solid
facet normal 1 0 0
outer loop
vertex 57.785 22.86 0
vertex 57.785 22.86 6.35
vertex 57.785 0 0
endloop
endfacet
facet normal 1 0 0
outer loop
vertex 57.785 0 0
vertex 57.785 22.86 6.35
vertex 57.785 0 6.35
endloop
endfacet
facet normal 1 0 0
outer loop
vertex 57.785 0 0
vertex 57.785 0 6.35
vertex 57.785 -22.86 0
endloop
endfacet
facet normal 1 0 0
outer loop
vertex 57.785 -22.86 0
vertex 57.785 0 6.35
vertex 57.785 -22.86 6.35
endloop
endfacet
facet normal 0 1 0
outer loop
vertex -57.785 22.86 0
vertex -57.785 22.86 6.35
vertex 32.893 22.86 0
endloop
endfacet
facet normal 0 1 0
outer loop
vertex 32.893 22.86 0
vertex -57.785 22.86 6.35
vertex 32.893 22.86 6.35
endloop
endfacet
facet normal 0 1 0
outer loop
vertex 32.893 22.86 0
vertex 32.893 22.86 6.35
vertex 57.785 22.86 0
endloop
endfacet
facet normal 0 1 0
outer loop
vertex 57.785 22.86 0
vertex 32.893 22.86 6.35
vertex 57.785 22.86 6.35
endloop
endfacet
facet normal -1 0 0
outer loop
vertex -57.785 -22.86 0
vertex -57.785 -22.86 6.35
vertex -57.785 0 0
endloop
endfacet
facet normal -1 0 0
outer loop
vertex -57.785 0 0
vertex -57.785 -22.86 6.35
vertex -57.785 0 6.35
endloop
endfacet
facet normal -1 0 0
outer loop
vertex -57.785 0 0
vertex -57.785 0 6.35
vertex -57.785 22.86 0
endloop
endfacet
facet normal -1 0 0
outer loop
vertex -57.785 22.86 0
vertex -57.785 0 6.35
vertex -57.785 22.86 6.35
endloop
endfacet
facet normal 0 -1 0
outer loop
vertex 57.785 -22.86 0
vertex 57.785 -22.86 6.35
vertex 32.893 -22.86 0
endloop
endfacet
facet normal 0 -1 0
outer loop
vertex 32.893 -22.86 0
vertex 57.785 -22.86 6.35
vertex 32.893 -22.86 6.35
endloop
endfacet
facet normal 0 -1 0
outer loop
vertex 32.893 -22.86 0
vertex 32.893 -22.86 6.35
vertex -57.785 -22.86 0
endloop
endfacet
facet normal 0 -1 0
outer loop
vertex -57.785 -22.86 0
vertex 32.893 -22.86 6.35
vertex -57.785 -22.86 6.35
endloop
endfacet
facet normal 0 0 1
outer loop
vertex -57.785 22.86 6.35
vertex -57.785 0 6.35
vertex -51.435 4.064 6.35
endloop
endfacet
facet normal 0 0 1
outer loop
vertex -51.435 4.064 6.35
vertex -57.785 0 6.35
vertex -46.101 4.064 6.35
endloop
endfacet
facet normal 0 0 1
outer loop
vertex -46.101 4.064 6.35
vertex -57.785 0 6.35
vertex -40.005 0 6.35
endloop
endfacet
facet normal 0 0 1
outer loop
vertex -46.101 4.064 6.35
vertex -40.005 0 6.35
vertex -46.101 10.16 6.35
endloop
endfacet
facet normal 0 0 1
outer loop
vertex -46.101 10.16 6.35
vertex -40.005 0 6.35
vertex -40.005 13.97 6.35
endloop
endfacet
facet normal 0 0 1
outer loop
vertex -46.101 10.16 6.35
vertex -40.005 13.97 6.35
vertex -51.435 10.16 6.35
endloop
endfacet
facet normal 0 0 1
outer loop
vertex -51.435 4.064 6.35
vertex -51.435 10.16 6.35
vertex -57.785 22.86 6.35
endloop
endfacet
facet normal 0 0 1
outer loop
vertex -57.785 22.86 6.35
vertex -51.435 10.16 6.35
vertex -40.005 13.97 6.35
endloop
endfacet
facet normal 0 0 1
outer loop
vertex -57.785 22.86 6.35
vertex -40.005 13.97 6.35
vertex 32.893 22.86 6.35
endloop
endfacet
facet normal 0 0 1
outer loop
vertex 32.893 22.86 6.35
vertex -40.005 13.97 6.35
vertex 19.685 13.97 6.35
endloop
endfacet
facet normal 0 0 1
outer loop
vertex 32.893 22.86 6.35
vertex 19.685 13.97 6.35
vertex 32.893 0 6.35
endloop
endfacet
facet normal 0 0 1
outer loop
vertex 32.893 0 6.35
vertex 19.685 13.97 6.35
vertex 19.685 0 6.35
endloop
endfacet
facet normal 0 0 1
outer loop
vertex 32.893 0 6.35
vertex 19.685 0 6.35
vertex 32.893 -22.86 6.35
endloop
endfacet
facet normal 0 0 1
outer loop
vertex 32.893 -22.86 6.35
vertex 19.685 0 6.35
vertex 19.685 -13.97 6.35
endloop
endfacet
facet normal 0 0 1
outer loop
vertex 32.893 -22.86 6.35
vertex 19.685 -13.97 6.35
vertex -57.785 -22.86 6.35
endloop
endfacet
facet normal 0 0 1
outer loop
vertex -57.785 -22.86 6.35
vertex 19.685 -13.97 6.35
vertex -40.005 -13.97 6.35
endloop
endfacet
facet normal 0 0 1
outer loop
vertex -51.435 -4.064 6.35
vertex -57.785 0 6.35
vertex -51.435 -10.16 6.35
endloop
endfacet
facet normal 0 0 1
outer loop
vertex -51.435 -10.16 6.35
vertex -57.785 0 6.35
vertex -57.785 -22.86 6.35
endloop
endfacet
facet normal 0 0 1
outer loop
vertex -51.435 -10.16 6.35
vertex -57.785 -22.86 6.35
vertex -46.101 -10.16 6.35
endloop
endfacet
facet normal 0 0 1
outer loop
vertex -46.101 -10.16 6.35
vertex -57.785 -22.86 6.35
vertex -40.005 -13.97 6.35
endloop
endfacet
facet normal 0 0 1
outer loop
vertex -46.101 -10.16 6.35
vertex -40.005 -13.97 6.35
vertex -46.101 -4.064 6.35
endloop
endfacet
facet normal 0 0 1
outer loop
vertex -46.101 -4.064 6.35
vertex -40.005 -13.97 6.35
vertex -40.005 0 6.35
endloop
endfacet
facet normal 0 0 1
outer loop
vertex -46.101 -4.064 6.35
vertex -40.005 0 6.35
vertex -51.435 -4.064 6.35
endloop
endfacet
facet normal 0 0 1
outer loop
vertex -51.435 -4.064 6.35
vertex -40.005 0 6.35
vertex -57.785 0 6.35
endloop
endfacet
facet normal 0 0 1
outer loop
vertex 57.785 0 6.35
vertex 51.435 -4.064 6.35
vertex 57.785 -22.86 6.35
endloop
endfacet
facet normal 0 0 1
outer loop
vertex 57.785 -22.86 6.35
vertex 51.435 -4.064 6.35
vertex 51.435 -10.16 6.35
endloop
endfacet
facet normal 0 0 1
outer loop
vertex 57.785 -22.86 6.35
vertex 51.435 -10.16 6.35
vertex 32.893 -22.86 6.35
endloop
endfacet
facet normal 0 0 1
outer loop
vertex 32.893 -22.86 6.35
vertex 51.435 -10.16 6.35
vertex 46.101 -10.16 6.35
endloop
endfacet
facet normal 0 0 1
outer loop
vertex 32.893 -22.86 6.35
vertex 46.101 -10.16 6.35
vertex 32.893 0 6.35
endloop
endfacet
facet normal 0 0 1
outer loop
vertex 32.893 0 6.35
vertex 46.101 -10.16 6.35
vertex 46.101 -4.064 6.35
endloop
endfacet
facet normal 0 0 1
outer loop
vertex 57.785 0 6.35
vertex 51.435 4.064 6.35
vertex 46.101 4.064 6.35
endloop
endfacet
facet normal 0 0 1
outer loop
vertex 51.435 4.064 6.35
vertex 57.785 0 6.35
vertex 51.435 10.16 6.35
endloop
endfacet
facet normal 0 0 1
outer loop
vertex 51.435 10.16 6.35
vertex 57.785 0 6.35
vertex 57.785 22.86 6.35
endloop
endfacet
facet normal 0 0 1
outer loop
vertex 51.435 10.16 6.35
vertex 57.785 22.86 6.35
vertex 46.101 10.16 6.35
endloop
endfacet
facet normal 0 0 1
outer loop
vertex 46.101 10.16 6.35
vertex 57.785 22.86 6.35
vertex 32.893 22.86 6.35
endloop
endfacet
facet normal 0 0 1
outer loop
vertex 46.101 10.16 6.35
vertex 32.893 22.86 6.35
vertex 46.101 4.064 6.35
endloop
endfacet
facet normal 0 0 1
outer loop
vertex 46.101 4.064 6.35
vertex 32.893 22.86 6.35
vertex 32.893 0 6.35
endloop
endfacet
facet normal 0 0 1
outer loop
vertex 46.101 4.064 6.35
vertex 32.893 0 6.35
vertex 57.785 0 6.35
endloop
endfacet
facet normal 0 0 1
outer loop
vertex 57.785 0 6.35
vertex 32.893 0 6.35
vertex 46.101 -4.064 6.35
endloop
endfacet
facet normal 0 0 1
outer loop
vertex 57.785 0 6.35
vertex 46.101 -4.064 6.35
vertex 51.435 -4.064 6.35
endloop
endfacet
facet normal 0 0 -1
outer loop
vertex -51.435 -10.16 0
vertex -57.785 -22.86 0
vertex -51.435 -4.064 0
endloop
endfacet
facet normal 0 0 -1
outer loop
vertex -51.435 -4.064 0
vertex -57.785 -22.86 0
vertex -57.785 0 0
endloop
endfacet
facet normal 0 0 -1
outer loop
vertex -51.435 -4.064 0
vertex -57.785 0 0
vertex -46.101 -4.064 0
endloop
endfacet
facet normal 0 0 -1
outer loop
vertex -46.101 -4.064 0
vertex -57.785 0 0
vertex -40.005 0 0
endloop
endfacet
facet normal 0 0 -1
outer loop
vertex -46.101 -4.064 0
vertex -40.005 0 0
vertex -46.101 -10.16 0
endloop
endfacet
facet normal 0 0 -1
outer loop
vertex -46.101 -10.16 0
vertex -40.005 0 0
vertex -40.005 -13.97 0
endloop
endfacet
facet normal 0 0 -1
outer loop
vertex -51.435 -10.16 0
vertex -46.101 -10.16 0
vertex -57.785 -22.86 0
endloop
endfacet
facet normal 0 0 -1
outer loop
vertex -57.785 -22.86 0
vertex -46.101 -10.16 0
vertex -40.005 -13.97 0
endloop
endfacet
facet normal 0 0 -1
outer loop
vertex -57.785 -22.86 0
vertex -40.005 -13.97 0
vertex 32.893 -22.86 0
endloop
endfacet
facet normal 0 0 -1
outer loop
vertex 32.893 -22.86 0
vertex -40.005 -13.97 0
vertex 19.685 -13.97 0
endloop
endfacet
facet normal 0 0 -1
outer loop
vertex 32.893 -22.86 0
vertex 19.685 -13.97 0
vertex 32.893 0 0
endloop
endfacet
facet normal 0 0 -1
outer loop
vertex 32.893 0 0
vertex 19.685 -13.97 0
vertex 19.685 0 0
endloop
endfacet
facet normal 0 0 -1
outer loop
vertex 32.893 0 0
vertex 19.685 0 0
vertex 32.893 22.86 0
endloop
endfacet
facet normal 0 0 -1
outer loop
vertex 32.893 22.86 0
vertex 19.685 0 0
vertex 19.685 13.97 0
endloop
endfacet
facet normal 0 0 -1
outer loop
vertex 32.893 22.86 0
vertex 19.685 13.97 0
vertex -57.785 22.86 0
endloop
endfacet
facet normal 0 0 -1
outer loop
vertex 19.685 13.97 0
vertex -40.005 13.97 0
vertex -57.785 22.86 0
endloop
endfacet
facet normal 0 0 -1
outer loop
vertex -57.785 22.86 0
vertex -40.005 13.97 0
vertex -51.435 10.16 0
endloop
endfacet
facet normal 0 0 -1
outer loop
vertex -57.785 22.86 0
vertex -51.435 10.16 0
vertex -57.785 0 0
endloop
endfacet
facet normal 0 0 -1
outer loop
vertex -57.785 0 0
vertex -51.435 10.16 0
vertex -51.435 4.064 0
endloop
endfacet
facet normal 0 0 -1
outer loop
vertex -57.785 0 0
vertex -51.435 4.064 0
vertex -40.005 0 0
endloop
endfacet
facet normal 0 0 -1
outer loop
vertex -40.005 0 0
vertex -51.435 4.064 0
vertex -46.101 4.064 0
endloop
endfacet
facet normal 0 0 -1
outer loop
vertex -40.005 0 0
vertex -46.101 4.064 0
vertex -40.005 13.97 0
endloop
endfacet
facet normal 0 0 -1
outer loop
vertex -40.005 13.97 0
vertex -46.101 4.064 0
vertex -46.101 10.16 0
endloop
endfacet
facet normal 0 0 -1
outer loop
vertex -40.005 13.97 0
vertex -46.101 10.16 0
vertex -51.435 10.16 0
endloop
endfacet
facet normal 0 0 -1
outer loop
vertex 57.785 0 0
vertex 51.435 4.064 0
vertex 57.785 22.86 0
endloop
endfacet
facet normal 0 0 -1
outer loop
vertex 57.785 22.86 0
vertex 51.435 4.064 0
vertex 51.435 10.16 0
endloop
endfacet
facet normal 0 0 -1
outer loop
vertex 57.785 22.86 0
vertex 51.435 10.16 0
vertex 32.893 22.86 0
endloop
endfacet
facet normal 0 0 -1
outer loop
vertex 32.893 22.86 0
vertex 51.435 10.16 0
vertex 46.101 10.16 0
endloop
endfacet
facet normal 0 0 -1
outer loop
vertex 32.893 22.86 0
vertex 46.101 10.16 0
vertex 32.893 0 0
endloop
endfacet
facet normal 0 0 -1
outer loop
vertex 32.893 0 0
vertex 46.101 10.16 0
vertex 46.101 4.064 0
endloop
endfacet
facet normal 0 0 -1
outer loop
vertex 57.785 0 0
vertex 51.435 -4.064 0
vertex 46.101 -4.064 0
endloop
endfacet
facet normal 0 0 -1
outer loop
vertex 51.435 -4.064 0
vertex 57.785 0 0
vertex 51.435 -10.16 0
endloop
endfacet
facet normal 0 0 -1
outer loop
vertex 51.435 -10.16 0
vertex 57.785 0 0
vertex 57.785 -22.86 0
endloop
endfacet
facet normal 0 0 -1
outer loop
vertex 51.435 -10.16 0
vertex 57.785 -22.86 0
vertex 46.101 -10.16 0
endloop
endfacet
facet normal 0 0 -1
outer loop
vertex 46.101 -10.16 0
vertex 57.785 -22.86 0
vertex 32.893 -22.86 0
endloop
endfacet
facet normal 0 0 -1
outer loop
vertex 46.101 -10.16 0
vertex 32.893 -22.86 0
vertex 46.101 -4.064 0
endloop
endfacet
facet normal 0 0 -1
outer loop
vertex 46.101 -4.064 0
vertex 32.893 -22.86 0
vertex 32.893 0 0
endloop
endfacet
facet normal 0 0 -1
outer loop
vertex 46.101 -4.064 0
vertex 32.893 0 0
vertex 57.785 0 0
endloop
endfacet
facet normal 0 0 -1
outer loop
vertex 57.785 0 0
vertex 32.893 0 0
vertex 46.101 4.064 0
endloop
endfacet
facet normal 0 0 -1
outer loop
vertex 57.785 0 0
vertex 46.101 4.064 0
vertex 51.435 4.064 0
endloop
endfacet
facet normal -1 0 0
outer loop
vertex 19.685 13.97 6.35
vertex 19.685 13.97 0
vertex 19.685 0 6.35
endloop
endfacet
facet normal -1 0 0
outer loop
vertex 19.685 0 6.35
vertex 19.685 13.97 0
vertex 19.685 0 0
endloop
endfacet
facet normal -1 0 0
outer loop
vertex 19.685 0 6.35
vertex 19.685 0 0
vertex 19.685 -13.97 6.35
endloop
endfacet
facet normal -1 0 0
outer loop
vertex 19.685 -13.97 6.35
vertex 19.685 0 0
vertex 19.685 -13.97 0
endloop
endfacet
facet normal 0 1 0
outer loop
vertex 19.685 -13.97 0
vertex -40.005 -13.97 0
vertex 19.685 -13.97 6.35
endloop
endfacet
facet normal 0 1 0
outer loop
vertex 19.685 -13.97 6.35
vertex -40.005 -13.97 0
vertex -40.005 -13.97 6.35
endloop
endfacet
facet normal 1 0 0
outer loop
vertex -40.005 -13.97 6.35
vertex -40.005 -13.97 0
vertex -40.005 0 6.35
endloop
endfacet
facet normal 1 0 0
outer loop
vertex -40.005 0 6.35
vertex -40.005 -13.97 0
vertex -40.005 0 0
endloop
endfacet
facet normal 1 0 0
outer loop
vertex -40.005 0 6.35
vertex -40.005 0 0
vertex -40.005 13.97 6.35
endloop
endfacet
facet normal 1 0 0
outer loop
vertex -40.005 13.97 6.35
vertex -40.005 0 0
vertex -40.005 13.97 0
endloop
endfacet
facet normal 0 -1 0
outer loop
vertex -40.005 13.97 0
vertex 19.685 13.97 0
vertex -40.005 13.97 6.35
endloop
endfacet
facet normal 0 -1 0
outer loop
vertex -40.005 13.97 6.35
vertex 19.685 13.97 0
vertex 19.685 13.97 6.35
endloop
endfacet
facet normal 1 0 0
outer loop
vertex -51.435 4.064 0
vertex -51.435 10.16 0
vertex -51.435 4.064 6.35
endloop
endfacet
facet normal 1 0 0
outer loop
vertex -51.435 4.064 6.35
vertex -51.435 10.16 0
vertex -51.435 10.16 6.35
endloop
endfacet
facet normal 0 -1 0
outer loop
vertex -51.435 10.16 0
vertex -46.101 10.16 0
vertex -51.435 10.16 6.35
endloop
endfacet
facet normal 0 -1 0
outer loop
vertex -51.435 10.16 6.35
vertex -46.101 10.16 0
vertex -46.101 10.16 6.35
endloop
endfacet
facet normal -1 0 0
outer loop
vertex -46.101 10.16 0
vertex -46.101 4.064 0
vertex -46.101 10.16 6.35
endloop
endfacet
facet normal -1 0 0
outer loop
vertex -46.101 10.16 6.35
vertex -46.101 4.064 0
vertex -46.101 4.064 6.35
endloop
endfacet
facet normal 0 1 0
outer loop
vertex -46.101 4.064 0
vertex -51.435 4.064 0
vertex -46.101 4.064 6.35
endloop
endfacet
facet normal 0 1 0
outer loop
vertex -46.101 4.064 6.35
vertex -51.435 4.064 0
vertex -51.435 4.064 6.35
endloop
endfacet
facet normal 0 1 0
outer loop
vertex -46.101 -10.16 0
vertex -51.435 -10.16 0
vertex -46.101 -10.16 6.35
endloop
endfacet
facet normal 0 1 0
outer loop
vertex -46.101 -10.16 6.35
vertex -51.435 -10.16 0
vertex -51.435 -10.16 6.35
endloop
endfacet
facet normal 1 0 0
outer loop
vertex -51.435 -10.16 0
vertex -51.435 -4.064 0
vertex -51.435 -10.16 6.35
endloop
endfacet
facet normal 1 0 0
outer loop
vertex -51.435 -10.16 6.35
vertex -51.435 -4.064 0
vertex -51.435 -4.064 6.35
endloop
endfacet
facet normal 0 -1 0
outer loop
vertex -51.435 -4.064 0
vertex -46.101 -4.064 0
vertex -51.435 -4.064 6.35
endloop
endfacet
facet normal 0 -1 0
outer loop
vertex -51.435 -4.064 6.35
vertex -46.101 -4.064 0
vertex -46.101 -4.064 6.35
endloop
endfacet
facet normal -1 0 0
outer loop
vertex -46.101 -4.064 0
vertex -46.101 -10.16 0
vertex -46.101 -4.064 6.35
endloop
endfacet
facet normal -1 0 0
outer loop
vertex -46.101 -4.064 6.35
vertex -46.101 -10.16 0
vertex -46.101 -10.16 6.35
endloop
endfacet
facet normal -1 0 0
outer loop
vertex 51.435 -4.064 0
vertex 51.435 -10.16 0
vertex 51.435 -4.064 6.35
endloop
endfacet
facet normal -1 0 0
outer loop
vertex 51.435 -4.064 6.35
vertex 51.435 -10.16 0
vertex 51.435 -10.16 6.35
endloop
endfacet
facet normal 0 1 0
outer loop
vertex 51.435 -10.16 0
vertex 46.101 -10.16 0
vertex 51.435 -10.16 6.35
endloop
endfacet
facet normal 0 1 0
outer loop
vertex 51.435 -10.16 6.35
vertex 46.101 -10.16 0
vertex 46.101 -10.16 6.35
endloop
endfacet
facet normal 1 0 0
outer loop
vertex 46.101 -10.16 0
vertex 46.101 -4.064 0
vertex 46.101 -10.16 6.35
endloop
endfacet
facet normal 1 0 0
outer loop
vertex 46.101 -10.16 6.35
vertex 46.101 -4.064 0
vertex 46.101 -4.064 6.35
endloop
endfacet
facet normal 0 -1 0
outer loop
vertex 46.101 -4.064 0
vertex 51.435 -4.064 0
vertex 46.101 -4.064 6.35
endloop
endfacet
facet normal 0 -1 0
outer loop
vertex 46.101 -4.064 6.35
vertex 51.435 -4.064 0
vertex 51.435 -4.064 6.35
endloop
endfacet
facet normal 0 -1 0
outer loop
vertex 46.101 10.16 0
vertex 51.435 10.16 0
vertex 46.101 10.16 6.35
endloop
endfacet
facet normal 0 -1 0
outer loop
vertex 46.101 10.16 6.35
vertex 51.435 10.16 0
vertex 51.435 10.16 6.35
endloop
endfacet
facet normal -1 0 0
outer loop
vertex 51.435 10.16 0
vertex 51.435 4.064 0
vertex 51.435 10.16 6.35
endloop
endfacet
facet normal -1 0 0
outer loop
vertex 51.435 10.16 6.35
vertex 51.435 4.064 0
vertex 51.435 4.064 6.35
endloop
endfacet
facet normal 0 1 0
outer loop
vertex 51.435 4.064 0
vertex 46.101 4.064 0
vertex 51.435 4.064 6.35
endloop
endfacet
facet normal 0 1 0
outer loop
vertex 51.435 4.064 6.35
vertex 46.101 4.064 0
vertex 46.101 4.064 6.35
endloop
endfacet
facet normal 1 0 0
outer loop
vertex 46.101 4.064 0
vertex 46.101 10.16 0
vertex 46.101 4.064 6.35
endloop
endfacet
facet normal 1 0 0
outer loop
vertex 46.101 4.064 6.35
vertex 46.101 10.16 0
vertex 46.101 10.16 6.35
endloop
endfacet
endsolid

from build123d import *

# Parameters (mm, degrees)
SKETCH1_W           = 115.57
SKETCH1_H           = 45.72
BOSS_EXTRUDE1_DEPTH = 6.35
SKETCH2_W           = 59.69
SKETCH2_H           = 27.94
CUT_EXTRUDE1_DEPTH  = 7.35
SKETCH3_W           = 5.334
SKETCH3_H           = 6.096
CUT_EXTRUDE2_DEPTH  = 7.35


with BuildPart() as part:
    # Sketch1 → Boss-Extrude1 (new body)
    with BuildSketch(Plane.XY):
        Rectangle(SKETCH1_W, SKETCH1_H)
    extrude(amount=BOSS_EXTRUDE1_DEPTH)

    # Sketch2 → Cut-Extrude1 (cut, through all)
    with BuildSketch(Plane.XY.offset(6.35)):
        with Locations((-10.16, 0)):
            Rectangle(SKETCH2_W, SKETCH2_H)
    extrude(amount=-CUT_EXTRUDE1_DEPTH, mode=Mode.SUBTRACT)

    # Sketch3 → Cut-Extrude2 (cut, through all)
    with BuildSketch(Plane.XY.offset(6.35)):
        with Locations((-48.768, 7.112)):
            Rectangle(SKETCH3_W, SKETCH3_H)
        with Locations((-48.768, -7.112)):
            Rectangle(SKETCH3_W, SKETCH3_H)
        with Locations((48.768, -7.112)):
            Rectangle(SKETCH3_W, SKETCH3_H)
        with Locations((48.768, 7.112)):
            Rectangle(SKETCH3_W, SKETCH3_H)
    extrude(amount=-CUT_EXTRUDE2_DEPTH, mode=Mode.SUBTRACT)


solid = part.part
